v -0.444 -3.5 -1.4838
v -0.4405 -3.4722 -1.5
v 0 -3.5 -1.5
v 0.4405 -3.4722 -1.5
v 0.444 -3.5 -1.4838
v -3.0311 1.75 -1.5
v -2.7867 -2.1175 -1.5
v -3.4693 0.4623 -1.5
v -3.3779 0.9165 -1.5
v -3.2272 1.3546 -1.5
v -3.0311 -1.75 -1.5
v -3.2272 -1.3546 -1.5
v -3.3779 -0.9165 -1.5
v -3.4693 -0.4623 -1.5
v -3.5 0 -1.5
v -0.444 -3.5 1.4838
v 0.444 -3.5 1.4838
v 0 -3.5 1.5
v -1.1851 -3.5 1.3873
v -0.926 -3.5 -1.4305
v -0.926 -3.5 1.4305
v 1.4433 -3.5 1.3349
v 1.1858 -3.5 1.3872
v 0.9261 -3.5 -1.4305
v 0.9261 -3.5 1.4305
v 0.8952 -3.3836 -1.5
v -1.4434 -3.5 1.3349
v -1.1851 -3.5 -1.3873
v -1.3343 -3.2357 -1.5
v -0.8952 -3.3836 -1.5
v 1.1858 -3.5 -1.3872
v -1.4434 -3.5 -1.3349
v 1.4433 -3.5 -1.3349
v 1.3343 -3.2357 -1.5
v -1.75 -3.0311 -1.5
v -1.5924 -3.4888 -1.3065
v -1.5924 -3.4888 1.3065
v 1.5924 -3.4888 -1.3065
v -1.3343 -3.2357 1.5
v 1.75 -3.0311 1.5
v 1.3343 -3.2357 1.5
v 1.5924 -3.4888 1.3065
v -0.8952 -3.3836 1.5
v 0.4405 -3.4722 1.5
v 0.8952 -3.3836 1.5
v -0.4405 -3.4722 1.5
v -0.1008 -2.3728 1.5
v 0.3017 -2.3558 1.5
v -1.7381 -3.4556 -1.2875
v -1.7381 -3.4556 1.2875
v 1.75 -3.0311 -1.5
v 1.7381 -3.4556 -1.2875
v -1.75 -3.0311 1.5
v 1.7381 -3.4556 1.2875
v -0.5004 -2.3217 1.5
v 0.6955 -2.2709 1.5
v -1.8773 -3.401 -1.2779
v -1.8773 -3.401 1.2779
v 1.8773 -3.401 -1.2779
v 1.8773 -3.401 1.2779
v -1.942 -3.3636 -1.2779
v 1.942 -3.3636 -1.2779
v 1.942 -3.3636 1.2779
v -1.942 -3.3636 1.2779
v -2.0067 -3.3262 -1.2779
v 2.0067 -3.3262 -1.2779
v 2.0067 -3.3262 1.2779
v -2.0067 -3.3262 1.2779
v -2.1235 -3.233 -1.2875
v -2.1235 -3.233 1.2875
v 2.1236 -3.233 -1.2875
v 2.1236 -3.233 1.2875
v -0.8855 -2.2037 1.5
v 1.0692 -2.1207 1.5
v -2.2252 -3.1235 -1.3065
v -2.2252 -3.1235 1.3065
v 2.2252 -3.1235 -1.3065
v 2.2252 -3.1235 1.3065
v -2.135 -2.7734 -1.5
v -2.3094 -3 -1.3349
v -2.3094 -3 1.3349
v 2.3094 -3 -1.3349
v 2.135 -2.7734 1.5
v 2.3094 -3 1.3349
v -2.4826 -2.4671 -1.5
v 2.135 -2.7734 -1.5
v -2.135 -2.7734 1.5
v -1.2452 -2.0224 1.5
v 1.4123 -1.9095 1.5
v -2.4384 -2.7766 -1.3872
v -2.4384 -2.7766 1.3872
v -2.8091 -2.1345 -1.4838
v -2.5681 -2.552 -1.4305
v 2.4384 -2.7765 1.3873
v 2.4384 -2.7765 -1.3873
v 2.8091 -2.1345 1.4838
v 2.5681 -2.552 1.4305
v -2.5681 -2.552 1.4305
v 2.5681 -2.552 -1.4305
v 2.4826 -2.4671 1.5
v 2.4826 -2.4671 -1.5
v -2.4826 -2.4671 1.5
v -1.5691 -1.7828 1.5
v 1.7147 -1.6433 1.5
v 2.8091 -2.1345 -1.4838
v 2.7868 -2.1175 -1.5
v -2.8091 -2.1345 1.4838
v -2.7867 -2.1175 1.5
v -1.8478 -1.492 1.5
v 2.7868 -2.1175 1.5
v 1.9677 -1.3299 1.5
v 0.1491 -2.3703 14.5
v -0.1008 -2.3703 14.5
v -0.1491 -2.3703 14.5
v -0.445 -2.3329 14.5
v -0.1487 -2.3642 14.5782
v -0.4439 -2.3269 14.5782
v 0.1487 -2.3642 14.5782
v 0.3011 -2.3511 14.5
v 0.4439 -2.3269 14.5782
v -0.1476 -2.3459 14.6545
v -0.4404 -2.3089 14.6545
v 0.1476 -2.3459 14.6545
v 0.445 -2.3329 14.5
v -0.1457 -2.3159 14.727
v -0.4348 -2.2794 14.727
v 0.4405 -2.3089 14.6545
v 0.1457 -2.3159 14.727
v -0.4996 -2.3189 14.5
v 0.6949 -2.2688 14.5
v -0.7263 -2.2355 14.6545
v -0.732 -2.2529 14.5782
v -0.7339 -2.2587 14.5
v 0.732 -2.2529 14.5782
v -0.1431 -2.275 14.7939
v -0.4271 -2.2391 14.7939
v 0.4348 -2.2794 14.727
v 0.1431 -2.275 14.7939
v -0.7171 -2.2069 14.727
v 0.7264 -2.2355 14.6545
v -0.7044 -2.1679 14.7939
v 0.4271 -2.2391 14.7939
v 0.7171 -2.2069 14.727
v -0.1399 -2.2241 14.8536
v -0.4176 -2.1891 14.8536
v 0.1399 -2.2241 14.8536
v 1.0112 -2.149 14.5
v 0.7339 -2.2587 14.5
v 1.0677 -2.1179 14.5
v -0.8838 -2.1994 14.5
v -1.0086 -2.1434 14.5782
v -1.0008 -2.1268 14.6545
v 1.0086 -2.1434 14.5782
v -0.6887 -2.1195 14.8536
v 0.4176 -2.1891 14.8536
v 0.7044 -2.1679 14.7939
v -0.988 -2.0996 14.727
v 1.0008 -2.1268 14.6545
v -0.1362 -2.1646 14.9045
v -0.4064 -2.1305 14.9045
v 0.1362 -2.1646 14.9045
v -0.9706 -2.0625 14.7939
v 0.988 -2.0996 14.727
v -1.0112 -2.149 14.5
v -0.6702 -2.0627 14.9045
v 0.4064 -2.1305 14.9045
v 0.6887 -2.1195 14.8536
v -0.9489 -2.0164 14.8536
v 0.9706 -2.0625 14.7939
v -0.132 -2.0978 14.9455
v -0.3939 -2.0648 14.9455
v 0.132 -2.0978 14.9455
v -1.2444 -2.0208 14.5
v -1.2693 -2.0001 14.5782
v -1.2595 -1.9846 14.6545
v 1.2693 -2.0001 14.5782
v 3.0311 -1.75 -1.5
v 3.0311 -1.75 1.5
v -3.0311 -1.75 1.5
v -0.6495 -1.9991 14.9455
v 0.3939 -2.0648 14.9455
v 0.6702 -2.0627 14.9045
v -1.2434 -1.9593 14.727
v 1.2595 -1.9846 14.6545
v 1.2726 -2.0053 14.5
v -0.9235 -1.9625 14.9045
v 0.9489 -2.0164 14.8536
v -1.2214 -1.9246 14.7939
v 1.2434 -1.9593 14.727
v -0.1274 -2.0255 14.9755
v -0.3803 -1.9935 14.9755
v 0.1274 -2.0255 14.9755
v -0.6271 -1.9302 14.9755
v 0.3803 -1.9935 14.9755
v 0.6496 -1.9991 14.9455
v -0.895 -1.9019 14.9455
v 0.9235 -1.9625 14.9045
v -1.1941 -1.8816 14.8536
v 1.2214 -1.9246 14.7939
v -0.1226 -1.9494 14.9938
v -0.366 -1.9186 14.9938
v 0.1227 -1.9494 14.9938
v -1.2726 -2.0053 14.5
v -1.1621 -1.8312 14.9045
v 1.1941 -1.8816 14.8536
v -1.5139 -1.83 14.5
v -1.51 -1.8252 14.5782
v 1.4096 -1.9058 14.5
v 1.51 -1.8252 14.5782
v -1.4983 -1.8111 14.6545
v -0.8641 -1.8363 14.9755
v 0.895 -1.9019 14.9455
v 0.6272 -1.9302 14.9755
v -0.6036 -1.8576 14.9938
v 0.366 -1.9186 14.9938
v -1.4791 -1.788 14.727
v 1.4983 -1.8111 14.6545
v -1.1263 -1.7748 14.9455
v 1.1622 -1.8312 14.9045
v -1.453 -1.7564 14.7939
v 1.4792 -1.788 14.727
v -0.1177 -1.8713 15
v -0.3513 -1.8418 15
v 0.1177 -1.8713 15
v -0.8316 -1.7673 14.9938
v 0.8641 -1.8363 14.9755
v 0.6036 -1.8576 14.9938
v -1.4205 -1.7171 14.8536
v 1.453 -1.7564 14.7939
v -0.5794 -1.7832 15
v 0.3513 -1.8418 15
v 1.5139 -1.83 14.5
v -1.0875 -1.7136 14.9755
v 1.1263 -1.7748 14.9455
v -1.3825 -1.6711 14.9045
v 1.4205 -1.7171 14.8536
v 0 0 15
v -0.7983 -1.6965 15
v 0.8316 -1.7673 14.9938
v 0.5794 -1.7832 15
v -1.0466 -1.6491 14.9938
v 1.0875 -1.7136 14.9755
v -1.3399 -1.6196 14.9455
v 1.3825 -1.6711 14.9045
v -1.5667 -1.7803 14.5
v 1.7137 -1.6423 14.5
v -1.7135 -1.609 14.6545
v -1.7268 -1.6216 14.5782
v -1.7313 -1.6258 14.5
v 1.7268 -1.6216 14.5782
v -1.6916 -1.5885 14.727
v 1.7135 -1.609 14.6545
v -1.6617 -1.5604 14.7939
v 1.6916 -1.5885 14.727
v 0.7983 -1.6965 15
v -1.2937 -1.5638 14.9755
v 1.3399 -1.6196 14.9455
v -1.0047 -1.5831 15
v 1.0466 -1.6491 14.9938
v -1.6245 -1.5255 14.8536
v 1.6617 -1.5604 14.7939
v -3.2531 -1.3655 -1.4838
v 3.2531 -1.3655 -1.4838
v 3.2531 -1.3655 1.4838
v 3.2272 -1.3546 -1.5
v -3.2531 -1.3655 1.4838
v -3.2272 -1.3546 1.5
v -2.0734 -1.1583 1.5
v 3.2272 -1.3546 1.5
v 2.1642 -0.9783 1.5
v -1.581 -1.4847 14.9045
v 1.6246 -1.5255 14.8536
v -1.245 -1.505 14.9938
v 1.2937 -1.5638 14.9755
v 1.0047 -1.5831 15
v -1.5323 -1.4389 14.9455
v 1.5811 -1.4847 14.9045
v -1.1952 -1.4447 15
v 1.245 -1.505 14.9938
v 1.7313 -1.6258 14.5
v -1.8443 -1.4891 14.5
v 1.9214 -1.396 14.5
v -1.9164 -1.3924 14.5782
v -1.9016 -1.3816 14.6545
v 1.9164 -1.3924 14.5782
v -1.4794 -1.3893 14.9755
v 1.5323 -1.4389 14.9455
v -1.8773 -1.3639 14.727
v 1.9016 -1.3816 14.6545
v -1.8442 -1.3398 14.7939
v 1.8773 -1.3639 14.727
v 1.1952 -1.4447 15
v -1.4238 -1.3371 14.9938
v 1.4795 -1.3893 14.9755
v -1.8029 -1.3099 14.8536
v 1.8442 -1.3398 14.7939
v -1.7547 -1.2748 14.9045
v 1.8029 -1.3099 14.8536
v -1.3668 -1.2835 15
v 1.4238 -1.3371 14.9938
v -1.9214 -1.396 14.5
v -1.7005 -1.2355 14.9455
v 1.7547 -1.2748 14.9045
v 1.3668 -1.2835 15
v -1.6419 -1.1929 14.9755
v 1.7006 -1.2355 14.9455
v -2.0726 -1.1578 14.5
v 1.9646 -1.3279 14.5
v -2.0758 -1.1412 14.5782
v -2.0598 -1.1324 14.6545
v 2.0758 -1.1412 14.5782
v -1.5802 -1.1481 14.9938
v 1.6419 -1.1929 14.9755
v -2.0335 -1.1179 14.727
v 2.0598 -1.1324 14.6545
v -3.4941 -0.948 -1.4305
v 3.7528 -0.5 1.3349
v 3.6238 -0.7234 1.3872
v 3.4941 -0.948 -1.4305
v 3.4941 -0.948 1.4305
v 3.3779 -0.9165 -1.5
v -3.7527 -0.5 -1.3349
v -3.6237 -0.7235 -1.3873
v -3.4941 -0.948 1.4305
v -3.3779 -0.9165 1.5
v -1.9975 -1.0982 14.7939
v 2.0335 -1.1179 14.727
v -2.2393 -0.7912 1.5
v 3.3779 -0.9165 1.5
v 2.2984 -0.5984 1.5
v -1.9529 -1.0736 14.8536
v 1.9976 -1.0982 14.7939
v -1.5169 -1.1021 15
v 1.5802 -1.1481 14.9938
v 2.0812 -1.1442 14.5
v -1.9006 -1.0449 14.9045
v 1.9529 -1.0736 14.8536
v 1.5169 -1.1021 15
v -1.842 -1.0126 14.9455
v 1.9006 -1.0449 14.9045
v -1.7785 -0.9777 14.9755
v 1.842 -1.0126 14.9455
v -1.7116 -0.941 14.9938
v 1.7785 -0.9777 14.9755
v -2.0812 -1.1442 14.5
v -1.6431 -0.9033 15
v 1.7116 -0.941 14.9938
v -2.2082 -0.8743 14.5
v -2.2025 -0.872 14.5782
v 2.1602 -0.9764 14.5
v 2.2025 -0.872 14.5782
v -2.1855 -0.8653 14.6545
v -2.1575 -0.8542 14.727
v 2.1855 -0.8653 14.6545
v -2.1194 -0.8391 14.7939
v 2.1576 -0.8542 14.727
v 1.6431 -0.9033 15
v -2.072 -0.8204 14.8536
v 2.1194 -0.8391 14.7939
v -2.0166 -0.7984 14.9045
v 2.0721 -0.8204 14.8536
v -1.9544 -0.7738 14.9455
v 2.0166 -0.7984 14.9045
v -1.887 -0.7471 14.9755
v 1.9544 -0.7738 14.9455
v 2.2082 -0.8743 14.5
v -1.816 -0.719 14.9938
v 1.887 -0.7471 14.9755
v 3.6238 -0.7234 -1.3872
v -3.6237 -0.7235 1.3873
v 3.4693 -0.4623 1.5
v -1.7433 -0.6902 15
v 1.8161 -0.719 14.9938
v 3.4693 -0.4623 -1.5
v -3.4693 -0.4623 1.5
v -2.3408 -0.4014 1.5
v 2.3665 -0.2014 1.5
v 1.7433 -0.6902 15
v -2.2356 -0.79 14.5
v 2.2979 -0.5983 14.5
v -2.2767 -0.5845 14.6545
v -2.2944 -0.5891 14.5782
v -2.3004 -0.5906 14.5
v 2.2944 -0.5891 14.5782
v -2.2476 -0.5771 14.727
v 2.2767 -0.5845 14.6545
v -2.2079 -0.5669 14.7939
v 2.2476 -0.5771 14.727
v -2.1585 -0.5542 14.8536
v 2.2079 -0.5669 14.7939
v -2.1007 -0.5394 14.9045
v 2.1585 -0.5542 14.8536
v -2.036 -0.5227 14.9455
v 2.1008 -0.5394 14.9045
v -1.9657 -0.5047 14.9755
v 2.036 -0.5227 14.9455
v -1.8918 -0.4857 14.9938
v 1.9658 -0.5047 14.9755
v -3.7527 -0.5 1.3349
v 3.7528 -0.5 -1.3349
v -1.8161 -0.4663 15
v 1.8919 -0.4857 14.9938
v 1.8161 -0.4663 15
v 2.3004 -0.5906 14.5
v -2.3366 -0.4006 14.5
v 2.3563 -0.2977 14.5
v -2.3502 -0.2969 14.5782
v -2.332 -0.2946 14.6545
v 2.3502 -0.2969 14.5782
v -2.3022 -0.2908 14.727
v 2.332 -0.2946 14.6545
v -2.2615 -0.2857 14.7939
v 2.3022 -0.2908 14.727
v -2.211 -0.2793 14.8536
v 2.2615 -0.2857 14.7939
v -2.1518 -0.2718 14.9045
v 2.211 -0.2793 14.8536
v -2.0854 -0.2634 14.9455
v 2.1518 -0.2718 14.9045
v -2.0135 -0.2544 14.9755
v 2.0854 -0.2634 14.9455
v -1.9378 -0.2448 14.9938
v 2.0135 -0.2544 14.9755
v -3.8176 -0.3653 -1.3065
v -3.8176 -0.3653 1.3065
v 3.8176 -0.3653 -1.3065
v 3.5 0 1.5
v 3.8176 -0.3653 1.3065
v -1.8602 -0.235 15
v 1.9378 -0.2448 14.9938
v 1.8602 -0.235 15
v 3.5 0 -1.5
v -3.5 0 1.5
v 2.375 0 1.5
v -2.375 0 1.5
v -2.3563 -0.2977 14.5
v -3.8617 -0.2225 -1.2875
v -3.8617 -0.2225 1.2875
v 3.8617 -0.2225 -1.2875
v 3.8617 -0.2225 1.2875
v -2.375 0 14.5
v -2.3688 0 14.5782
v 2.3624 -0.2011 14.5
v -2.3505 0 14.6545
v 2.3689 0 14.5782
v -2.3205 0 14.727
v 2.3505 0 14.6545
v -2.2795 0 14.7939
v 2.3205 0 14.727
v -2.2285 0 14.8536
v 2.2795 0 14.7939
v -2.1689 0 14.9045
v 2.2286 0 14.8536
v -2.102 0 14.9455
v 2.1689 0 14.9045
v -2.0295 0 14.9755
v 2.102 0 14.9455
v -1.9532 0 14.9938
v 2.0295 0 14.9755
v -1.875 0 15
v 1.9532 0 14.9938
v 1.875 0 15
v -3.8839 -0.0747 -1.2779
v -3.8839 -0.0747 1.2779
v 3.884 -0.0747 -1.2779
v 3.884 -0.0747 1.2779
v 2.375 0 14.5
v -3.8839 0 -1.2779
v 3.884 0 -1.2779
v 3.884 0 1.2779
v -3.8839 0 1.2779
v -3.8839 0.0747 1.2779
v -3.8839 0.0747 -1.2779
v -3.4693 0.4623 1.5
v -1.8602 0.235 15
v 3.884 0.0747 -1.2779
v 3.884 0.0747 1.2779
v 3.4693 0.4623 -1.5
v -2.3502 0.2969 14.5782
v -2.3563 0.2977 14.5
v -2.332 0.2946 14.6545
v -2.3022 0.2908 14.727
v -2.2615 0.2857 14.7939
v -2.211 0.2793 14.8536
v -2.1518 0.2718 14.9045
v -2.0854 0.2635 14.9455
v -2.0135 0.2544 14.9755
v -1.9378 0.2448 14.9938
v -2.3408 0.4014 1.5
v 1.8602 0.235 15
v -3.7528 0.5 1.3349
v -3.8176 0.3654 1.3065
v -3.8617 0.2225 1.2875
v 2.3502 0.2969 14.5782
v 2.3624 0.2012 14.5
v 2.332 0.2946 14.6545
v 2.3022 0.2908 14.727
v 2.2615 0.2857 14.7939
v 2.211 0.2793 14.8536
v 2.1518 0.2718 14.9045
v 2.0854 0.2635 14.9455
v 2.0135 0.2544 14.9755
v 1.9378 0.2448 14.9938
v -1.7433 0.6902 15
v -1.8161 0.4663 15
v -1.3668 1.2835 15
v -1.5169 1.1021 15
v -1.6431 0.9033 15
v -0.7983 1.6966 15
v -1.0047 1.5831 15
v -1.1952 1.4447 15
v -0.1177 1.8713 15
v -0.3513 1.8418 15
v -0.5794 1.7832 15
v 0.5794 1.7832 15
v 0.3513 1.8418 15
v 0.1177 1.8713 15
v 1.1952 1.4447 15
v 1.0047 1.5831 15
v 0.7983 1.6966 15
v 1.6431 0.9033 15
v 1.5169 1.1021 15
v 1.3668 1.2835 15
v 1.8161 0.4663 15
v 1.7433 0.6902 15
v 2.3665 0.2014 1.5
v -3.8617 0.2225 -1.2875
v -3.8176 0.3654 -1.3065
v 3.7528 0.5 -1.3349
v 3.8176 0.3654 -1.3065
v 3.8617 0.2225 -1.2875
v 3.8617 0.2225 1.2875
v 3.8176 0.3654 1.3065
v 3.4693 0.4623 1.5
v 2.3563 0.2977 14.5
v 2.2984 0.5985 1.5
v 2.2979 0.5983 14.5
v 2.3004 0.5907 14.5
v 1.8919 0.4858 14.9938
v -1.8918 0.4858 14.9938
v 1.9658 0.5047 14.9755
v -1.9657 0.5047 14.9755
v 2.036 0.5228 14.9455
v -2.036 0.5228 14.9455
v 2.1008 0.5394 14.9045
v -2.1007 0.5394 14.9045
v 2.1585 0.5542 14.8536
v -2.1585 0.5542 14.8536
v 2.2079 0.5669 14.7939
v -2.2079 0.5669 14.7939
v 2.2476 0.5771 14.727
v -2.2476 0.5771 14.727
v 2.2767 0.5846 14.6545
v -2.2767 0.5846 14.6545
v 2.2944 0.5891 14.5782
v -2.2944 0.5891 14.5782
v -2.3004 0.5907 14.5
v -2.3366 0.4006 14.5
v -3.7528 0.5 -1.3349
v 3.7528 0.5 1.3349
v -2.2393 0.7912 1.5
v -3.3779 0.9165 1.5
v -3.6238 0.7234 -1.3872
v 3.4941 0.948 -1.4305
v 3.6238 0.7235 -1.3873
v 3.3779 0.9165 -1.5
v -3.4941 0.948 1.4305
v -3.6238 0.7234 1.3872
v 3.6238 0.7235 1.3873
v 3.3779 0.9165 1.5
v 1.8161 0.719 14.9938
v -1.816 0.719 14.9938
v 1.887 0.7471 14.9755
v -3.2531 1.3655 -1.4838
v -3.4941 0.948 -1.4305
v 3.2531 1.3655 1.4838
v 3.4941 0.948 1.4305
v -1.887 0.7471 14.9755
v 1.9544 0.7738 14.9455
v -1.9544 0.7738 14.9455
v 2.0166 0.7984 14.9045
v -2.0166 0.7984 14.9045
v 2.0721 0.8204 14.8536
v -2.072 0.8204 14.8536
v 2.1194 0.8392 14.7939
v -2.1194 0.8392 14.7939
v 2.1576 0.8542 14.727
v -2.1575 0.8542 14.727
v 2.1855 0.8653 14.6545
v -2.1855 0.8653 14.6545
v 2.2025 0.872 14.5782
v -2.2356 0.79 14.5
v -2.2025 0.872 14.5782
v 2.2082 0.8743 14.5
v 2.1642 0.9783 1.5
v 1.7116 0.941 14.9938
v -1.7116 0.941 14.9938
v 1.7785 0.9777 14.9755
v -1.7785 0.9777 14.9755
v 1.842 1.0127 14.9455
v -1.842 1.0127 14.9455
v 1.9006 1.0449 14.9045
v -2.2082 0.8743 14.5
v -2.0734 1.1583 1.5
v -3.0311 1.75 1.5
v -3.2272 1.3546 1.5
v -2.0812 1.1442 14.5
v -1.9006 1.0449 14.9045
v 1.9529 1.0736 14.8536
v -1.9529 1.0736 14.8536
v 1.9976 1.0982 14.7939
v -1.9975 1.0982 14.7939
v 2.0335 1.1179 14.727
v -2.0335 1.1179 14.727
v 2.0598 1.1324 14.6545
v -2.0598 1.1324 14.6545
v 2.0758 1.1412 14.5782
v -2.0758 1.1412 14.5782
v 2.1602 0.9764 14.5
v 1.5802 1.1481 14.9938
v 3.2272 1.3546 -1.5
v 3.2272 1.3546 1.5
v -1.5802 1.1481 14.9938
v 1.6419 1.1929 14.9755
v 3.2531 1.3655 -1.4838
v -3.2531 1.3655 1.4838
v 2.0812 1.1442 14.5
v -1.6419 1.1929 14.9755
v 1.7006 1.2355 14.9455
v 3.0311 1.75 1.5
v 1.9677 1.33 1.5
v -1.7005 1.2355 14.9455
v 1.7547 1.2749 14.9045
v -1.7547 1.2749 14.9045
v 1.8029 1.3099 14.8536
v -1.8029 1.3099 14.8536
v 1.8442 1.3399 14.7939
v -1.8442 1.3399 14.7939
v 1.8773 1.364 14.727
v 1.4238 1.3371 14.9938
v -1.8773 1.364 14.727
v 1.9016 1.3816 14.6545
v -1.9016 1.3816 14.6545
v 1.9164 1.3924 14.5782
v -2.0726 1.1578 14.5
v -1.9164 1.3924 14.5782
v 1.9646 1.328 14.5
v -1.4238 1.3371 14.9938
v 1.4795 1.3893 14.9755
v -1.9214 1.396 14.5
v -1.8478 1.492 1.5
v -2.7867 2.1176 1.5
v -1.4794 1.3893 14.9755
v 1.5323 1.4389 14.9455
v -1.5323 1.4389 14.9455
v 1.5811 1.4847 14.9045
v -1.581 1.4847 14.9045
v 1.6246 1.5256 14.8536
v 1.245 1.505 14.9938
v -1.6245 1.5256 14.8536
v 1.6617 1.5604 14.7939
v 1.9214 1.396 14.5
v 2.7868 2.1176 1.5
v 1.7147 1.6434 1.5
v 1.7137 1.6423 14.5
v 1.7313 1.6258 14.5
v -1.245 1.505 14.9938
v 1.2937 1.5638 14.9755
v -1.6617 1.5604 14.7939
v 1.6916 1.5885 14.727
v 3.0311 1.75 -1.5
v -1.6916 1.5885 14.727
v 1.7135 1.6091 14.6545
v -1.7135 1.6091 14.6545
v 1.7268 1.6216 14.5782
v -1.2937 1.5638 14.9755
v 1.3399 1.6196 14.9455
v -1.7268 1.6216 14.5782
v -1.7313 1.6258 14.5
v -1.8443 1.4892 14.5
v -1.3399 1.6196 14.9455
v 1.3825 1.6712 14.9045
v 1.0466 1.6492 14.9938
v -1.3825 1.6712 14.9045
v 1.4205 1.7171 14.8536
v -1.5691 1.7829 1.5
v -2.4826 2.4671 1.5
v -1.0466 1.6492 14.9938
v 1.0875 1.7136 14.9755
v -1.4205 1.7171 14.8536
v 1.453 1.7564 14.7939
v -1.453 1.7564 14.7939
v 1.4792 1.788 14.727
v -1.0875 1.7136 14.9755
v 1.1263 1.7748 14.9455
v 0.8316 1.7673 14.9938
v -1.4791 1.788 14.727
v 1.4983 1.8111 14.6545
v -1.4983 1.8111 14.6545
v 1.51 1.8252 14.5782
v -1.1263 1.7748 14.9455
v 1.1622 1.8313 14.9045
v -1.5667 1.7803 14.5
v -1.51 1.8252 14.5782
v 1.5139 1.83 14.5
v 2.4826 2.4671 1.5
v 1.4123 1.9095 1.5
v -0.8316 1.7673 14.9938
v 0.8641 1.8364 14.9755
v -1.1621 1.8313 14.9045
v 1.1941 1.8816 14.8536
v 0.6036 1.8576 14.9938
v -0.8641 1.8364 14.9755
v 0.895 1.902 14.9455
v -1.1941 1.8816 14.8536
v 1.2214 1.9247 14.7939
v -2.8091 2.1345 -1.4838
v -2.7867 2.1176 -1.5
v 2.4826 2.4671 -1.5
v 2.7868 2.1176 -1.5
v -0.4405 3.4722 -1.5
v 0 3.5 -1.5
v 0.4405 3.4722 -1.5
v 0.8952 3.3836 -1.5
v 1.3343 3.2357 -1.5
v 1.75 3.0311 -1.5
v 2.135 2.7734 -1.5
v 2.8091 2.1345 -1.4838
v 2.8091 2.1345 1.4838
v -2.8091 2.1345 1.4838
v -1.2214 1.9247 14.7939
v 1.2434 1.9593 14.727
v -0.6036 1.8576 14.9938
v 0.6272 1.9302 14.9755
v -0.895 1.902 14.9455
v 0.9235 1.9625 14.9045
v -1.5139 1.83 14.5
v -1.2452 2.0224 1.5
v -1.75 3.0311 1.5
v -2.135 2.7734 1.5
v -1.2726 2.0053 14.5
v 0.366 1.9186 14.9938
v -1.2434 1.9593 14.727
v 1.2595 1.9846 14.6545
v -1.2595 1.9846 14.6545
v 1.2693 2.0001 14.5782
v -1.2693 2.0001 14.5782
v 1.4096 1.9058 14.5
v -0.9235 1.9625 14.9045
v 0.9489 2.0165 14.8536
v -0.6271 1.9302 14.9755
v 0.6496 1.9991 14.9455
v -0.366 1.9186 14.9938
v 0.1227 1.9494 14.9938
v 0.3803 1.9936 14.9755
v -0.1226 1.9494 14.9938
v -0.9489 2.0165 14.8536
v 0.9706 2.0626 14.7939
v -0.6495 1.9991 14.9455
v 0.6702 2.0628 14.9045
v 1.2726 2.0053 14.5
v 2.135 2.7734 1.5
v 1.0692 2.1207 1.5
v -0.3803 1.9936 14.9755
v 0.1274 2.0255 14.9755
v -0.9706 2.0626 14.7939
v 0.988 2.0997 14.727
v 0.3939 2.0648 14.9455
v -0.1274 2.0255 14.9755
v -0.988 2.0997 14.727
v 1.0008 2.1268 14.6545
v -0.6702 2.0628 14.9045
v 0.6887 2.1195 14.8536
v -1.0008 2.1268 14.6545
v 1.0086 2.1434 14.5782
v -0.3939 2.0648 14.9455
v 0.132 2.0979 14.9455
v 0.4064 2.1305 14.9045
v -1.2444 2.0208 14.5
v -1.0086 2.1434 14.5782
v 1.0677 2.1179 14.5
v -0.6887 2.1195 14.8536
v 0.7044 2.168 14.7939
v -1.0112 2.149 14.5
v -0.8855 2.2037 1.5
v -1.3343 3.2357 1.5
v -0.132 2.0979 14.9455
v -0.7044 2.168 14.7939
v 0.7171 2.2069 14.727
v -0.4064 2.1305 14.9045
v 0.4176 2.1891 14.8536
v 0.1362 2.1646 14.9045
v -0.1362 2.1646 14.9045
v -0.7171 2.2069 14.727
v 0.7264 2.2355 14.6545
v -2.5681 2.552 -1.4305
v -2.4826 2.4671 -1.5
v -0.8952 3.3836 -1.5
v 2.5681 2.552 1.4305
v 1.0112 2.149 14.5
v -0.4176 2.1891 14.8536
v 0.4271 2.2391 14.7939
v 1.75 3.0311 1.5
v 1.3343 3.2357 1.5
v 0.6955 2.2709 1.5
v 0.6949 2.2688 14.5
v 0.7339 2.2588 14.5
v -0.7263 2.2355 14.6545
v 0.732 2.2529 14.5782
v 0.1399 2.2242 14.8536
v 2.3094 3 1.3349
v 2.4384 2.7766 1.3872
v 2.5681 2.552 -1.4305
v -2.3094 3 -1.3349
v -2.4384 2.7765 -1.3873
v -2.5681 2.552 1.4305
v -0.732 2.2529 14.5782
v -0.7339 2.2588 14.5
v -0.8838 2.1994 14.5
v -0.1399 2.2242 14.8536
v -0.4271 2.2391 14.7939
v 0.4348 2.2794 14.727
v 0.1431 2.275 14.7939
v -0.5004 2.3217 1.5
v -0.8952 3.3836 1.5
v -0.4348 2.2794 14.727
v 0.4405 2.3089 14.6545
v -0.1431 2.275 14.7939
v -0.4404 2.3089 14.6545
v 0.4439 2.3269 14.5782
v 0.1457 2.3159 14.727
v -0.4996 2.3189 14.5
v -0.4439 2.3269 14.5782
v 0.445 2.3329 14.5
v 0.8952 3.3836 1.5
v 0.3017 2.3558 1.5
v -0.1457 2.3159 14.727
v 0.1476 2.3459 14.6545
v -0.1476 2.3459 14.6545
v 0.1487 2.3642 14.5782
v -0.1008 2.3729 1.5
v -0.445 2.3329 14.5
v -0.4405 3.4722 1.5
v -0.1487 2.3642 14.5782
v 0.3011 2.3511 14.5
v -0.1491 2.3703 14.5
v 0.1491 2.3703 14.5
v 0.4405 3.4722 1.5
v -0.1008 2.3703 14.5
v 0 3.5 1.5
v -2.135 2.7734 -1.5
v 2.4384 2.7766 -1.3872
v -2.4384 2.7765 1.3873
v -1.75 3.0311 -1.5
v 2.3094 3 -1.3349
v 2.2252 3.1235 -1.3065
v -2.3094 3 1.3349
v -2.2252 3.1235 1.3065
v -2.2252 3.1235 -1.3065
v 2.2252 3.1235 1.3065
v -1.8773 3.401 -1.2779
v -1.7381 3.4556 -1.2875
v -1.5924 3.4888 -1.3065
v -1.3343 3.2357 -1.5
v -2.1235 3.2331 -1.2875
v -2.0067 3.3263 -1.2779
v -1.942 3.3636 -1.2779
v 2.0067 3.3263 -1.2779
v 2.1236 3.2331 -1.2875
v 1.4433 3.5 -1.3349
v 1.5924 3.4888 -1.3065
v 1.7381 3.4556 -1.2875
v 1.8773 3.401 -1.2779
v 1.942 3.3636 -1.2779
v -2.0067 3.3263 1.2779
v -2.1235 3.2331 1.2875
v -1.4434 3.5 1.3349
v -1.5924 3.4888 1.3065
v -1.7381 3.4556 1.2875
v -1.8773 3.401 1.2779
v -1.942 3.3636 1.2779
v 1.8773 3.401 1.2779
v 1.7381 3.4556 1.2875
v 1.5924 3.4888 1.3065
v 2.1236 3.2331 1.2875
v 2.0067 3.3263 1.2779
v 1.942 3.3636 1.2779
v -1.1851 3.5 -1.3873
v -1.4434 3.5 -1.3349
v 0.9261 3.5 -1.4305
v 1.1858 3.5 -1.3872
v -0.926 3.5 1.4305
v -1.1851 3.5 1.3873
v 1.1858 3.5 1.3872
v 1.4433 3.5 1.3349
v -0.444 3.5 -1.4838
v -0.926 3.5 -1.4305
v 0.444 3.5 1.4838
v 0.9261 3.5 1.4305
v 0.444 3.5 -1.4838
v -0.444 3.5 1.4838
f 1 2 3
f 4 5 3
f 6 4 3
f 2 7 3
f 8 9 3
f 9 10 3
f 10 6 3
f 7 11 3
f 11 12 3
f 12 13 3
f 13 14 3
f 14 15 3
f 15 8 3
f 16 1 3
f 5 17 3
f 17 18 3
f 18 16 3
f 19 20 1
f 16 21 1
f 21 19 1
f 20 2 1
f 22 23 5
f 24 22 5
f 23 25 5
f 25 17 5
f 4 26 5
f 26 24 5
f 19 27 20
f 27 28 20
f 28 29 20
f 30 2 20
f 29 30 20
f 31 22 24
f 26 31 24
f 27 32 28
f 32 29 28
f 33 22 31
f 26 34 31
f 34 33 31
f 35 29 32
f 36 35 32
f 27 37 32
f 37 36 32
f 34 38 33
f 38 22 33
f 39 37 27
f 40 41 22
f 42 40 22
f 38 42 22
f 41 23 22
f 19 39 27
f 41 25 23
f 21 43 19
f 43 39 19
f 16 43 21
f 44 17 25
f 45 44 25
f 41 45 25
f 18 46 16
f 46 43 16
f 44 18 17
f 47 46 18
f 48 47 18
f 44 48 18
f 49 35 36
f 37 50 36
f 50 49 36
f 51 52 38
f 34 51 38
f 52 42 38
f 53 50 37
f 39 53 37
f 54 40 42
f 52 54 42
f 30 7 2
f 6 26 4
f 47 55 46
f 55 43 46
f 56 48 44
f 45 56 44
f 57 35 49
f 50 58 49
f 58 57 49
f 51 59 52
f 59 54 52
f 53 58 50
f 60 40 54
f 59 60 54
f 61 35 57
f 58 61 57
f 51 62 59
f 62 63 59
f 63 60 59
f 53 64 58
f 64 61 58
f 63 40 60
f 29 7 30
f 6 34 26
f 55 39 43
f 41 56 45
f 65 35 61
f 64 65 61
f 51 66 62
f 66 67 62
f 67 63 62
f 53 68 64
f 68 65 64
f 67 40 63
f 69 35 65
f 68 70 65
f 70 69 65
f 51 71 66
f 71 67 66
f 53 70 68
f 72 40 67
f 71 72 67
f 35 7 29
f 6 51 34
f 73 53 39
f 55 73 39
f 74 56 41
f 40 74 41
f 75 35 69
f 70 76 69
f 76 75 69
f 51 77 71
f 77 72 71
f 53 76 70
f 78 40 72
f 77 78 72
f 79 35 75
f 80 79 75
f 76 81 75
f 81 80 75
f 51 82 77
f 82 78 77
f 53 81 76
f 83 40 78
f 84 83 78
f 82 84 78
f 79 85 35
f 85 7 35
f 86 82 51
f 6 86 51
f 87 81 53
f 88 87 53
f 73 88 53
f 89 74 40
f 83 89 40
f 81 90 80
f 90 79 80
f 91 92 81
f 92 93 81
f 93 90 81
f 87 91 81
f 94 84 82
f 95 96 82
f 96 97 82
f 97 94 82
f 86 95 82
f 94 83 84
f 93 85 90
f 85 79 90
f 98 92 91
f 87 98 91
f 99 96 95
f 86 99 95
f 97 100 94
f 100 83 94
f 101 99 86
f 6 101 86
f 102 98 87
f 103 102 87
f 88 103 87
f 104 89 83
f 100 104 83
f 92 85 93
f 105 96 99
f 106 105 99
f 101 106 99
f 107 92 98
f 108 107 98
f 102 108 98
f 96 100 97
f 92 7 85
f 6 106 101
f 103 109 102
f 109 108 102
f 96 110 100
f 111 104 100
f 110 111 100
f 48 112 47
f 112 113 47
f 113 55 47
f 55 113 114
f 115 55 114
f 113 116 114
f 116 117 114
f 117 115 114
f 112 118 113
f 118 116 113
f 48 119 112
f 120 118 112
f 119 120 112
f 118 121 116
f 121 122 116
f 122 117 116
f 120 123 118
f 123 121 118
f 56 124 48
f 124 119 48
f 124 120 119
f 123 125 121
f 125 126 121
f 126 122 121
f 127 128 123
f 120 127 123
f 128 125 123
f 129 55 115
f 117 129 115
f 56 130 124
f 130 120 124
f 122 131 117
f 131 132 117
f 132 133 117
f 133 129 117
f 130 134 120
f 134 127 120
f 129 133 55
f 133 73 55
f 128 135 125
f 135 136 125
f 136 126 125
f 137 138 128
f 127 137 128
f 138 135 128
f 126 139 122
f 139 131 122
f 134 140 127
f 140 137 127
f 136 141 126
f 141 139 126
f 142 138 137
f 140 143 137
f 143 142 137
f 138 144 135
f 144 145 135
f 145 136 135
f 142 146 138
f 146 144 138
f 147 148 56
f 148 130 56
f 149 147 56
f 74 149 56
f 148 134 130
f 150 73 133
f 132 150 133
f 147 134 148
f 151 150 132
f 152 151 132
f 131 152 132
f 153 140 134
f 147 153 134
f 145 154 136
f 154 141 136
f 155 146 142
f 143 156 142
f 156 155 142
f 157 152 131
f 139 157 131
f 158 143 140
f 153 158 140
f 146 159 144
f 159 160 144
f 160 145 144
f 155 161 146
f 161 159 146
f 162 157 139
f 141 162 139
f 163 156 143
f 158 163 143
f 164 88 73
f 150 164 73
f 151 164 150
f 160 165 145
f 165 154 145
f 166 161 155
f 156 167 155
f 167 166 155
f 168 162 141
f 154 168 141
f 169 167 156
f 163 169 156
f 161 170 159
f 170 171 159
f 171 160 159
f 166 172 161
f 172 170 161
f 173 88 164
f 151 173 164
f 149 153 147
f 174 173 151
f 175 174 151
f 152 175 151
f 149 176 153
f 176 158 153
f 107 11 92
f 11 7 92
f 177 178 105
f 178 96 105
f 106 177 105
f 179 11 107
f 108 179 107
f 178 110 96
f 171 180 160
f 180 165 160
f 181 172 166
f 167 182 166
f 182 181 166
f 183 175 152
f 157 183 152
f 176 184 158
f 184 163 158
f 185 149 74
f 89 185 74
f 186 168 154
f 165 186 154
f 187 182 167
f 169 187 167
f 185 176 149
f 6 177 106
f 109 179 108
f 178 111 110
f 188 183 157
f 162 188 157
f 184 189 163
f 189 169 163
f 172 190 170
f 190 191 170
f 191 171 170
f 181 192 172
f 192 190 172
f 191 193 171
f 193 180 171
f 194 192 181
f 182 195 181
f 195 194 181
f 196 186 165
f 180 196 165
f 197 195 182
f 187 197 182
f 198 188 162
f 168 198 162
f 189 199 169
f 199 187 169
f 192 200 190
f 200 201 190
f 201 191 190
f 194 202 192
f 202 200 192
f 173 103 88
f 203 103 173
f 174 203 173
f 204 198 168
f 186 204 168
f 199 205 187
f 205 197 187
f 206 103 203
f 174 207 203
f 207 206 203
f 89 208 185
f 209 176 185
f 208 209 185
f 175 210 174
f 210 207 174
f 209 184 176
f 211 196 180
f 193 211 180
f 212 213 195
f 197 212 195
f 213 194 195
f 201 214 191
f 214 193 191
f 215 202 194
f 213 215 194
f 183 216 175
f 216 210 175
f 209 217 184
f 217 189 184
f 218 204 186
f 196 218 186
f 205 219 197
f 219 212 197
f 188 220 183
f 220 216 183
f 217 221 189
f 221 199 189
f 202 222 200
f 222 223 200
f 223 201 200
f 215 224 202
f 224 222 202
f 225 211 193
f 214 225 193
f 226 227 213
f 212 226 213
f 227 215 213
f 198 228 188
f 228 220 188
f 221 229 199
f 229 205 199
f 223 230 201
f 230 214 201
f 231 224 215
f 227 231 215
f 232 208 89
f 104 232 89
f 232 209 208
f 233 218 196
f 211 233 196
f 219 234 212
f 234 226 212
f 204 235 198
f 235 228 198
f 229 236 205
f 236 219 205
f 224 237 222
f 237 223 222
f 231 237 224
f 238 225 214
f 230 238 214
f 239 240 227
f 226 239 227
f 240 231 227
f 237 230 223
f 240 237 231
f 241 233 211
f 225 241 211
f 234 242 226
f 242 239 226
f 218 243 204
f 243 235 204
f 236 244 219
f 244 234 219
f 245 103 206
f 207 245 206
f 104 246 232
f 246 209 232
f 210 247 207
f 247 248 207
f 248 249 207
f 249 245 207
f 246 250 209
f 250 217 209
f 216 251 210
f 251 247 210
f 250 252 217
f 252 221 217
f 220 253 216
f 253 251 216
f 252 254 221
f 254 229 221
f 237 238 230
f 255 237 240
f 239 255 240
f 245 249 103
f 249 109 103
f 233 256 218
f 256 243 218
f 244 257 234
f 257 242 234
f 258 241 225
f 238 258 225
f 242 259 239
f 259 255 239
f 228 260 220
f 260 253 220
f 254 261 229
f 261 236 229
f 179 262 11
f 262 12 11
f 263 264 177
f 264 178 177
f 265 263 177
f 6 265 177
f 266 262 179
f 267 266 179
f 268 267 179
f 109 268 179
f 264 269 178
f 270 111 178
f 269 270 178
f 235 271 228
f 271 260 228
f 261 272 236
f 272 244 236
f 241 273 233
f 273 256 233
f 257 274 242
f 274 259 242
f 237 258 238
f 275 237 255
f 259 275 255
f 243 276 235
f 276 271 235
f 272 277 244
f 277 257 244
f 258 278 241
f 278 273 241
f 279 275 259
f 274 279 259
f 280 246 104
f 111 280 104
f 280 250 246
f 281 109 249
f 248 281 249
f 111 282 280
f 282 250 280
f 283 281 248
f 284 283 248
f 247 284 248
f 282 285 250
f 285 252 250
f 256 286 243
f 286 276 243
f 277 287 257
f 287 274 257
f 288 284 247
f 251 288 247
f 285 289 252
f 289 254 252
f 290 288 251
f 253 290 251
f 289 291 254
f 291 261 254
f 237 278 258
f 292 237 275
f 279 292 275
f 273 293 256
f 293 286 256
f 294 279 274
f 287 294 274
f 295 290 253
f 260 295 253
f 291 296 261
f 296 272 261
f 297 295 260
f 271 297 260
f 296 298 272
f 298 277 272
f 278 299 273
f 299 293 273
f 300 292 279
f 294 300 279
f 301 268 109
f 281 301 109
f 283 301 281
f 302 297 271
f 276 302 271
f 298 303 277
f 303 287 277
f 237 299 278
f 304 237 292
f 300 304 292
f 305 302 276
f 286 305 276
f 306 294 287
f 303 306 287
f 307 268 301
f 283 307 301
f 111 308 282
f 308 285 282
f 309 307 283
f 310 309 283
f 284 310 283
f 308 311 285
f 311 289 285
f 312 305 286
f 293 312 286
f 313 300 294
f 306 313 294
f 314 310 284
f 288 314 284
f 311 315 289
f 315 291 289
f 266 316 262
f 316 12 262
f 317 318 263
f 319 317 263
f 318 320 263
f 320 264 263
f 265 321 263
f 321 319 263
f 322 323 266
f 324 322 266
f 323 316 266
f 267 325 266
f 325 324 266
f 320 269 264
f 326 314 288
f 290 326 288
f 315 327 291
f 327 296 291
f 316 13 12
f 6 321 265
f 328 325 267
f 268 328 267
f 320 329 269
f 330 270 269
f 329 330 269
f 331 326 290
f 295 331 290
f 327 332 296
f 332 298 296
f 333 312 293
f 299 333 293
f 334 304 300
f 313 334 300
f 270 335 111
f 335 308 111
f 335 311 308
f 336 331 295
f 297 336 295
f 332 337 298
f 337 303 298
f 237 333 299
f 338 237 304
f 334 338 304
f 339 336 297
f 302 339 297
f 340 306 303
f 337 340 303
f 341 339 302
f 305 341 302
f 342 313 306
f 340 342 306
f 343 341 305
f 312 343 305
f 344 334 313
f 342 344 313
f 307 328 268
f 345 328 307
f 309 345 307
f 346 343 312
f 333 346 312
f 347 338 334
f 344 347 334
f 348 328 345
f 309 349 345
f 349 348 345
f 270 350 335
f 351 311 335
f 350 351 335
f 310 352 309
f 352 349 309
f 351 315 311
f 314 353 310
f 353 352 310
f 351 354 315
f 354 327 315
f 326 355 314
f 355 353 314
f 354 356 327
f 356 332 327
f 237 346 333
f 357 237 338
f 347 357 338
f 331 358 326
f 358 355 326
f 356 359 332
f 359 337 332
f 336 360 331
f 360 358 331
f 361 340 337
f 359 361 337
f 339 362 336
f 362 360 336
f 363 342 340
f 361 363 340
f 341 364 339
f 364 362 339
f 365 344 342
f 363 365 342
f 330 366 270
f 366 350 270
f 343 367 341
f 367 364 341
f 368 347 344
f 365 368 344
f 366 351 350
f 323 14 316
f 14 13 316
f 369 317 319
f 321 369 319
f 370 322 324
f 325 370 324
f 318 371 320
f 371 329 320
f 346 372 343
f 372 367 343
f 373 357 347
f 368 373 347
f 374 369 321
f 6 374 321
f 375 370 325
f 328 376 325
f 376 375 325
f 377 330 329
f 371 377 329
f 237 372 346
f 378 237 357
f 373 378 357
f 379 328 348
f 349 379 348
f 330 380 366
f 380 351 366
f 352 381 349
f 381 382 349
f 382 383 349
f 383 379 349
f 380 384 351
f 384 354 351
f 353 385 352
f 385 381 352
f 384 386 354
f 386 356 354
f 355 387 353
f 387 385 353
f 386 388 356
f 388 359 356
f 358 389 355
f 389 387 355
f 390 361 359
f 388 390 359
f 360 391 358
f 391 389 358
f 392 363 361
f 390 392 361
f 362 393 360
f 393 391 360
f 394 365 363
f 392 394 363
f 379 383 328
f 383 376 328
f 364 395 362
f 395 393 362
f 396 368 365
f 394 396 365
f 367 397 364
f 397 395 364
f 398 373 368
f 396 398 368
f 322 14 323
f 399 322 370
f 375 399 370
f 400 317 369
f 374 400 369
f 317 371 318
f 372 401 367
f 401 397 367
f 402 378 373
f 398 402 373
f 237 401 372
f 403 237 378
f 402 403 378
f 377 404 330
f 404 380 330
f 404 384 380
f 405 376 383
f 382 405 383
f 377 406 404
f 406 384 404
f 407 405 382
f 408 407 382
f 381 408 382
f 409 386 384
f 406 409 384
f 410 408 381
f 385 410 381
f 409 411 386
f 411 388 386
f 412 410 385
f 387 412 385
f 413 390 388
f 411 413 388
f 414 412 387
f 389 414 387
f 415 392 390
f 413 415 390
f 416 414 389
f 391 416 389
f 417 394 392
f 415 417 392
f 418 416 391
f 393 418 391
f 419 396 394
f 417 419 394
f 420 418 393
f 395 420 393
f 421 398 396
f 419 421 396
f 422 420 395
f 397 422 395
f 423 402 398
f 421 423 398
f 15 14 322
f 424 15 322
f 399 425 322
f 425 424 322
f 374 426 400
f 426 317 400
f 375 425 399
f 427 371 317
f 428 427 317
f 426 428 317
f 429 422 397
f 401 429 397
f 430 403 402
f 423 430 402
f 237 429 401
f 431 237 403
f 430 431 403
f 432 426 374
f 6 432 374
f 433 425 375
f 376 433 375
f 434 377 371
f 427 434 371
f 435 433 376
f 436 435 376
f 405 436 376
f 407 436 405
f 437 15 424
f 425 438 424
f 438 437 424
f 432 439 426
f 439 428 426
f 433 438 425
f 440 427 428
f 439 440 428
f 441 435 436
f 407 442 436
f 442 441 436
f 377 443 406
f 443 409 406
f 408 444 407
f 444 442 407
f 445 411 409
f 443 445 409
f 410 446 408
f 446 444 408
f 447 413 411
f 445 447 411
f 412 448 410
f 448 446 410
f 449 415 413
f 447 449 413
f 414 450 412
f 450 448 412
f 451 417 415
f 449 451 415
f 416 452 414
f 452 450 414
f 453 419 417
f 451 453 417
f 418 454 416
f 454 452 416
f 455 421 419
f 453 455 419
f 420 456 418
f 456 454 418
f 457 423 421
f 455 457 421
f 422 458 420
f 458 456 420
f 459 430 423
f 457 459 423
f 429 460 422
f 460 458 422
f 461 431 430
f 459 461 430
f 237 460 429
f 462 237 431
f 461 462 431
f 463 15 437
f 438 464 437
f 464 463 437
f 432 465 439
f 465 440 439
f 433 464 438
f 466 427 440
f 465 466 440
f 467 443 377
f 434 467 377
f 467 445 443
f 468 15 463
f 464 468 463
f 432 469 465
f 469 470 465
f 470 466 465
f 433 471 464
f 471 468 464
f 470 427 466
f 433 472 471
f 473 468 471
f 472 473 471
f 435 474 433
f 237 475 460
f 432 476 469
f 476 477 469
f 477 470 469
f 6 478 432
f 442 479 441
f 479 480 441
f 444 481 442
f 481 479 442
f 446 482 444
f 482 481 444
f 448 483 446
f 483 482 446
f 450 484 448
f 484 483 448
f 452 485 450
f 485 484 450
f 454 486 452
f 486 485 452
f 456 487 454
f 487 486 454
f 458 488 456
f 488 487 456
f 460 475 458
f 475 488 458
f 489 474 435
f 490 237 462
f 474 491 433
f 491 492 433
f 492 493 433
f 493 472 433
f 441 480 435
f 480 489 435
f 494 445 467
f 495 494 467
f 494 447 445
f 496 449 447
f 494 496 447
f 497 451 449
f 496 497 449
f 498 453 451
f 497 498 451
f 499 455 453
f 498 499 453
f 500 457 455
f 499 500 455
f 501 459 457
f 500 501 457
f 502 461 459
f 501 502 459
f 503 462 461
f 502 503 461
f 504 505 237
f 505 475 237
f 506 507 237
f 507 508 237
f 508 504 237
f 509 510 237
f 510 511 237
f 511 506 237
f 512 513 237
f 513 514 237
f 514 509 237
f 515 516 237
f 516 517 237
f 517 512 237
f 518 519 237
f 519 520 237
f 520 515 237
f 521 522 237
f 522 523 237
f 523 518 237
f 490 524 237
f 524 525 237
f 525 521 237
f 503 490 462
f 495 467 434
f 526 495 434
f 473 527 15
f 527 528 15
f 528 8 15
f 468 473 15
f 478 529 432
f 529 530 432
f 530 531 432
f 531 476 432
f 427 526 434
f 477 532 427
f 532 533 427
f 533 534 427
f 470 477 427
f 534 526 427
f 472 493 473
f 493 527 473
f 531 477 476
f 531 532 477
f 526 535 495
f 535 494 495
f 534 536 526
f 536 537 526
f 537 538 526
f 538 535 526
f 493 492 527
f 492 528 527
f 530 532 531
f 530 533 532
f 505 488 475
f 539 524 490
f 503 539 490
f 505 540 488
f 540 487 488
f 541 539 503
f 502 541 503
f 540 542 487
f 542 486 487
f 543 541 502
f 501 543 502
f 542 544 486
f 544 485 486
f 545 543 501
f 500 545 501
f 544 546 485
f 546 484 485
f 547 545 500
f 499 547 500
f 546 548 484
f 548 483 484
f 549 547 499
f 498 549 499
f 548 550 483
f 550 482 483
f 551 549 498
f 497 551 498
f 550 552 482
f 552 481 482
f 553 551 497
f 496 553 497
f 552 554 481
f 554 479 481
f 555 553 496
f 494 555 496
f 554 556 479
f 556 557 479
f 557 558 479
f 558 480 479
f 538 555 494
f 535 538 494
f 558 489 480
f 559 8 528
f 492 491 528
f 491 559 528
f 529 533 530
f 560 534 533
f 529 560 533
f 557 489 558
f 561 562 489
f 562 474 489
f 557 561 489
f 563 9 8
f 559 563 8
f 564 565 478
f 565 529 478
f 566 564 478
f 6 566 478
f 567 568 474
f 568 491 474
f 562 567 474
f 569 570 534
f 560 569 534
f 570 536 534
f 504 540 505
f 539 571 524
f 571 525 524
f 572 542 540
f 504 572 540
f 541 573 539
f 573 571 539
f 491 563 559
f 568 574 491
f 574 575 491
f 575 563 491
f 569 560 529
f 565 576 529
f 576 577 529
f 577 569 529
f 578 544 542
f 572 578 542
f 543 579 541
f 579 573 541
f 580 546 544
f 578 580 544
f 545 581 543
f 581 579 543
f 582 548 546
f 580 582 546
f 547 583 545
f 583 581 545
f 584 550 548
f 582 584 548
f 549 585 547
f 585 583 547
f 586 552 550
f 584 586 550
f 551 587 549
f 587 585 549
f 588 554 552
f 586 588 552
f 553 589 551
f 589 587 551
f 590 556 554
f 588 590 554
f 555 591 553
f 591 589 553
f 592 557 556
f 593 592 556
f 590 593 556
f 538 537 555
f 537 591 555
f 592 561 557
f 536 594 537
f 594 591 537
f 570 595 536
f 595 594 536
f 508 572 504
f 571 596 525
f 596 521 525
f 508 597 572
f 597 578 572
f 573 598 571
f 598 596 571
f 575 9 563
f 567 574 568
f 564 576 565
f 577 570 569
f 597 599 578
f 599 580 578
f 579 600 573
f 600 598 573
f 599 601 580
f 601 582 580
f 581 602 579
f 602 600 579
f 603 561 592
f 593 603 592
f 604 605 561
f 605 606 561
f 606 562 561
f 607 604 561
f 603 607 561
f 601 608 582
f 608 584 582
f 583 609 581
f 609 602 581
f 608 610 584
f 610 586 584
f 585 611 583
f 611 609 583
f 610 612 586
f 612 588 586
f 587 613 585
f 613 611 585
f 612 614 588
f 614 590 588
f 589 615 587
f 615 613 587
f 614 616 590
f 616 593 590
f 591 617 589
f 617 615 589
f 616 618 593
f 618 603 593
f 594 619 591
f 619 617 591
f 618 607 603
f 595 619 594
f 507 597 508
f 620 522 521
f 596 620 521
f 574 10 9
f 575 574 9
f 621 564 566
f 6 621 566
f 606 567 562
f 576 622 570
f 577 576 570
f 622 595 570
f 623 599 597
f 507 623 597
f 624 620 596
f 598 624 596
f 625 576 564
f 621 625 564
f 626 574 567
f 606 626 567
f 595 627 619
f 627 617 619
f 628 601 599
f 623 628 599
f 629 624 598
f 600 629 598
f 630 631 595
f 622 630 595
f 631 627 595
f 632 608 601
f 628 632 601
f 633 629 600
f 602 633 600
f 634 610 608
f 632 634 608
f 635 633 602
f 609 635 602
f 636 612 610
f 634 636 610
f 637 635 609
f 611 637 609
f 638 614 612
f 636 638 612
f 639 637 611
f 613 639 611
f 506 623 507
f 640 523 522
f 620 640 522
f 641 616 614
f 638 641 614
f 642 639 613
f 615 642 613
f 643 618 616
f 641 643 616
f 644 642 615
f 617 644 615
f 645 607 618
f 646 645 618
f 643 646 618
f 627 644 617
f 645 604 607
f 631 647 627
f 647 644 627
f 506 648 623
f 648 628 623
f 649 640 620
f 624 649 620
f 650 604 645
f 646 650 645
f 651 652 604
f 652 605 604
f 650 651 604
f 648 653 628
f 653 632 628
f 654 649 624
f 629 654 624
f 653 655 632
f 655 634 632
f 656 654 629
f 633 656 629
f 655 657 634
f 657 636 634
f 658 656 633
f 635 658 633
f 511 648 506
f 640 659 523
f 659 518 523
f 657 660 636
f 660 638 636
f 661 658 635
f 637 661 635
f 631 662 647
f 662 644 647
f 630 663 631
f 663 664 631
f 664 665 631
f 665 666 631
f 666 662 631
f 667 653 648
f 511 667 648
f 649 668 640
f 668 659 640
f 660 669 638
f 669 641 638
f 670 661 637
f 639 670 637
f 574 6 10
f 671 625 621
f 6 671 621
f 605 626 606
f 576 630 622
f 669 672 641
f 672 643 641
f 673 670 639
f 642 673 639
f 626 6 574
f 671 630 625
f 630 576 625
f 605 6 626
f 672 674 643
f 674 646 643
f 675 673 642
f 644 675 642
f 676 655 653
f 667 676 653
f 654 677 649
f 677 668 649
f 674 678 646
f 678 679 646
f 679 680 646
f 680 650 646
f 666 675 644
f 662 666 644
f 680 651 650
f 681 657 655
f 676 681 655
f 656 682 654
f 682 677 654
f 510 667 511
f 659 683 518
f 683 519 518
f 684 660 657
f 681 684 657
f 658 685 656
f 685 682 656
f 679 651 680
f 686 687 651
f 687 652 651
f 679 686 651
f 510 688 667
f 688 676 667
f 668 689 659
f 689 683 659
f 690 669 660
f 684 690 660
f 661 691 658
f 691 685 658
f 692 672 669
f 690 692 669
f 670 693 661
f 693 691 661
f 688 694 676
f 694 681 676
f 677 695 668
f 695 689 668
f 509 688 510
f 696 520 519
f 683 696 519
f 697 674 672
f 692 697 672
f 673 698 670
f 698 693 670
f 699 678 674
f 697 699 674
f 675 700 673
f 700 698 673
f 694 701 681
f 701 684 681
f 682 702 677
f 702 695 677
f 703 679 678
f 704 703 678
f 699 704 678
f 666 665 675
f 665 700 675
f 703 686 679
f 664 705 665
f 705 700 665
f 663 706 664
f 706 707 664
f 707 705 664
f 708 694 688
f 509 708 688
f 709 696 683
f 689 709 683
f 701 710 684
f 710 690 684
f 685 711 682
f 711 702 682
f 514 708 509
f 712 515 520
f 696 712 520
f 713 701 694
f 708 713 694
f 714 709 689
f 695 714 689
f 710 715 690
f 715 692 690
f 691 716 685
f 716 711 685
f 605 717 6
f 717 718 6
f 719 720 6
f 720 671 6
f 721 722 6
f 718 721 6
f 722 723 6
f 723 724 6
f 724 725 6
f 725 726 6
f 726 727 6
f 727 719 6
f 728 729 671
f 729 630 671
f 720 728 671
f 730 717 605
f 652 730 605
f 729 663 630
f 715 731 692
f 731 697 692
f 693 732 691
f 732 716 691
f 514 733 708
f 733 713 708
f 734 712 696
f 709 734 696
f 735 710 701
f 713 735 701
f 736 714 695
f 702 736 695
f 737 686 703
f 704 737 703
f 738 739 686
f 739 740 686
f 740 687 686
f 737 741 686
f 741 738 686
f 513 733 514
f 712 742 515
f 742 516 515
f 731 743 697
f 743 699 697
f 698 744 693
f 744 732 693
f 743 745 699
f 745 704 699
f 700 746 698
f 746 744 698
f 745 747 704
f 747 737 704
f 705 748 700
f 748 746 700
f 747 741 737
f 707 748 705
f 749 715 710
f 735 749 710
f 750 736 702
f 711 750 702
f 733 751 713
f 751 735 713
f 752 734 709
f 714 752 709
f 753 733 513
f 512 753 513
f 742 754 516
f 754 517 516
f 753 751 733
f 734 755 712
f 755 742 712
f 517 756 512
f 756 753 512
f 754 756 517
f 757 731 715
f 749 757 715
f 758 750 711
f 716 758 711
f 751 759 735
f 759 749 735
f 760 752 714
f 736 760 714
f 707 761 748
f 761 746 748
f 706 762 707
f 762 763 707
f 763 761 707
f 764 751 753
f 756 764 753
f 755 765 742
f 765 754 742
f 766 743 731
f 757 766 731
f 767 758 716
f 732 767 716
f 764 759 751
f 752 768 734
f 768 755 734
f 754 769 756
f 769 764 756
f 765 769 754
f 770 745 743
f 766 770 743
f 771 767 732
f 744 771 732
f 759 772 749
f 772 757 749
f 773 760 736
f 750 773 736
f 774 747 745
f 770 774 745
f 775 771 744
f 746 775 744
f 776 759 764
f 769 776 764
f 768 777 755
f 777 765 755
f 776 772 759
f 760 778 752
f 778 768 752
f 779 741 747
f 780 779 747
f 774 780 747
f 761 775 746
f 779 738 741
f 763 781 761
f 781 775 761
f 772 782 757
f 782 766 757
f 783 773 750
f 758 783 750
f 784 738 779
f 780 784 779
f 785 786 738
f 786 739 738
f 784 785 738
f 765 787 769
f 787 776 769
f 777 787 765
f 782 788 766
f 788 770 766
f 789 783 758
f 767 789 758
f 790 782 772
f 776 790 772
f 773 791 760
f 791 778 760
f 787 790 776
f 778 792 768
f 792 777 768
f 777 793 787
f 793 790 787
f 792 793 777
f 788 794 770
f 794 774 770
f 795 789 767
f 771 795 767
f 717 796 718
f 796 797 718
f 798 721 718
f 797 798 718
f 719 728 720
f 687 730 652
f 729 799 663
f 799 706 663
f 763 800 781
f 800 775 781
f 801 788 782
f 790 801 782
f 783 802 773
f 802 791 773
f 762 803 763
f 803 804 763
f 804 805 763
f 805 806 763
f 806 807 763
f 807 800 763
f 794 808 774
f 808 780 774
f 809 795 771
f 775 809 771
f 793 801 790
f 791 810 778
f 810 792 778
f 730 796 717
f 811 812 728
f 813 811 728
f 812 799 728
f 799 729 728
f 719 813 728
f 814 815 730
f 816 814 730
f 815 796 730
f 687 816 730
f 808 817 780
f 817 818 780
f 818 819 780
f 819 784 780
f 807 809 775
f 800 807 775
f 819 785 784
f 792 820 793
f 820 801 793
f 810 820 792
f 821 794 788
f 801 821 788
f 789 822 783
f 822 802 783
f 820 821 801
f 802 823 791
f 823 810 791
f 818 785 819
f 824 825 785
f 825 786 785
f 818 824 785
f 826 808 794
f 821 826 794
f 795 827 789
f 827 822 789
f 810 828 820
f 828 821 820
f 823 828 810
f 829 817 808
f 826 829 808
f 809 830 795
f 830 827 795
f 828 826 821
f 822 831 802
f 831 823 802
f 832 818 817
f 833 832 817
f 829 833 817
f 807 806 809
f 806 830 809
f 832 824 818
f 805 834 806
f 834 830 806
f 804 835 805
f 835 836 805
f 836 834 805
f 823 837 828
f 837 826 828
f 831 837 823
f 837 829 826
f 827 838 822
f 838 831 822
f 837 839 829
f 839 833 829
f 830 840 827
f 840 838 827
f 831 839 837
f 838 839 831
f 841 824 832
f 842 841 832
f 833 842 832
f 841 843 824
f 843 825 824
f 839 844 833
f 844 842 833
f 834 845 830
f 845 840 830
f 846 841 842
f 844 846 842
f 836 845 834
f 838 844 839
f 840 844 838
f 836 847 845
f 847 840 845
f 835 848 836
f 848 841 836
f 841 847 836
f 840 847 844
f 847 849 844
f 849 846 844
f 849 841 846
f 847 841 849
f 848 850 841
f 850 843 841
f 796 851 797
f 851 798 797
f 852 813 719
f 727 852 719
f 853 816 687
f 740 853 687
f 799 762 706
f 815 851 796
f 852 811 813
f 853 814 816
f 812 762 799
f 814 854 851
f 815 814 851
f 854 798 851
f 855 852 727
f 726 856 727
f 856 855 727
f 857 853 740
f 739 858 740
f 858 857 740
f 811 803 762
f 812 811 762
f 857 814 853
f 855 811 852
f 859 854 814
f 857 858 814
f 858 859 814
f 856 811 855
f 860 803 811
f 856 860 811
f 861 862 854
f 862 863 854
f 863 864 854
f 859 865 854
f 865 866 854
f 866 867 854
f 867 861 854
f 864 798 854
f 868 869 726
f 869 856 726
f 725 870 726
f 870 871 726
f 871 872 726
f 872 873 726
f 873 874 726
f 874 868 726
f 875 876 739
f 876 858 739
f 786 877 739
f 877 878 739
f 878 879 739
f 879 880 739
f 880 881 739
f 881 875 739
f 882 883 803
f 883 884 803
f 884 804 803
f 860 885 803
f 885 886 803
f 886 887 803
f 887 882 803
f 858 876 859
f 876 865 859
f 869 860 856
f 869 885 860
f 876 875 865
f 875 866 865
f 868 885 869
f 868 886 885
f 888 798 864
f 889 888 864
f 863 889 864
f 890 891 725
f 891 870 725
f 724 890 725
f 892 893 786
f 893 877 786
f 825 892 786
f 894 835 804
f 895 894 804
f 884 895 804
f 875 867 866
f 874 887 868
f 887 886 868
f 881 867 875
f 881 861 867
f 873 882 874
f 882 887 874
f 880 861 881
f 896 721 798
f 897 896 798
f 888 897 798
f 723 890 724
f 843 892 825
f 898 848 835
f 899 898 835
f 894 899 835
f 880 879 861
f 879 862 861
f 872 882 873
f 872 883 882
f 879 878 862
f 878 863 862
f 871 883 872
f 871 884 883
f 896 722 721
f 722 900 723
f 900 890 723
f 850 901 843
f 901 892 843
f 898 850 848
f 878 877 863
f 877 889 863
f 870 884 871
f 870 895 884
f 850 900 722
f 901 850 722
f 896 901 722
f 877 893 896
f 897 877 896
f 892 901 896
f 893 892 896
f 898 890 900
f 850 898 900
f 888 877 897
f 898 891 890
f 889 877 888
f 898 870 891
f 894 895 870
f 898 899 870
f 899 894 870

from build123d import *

# Parameters (mm, degrees)
BOSS_EXTRUDE2_DEPTH     = 1.5
SKETCH5_OUTSIDE_W       = 64.264
SKETCH5_OUTSIDE_H       = 63.182
SKETCH5_OUTSIDE_R       = 3.5
CUT_EXTRUDE1_DEPTH      = 15
CUT_EXTRUDE1_DRAFT      = -60
MIRROR1_COPY_1_SKETCH_W = 64.264
MIRROR1_COPY_1_SKETCH_H = 63.182
MIRROR1_COPY_1_SKETCH_R = 3.5
MIRROR1_COPY_1_DEPTH    = 15
MIRROR1_COPY_1_DRAFT    = -60
SKETCH4_3_R             = 2.375
BOSS_EXTRUDE3_DEPTH     = 15
FILLET1_R               = 1
FILLET2_R               = 0.5


with BuildPart() as part:
    # Sketch4 → Boss-Extrude2 (new, symmetric)
    with BuildSketch(Plane.XY):
        Polygon((2.020725942, 3.5), (-2.020725942, 3.5), (-4.041451884, 0), (-2.020725942, -3.5), (2.020725942, -3.5), (4.041451884, 0), align=None)
    extrude(amount=BOSS_EXTRUDE2_DEPTH, both=True)


with BuildPart() as cut_extrude1_tool:
    # Sketch5 outside → Cut-Extrude1 (with draft: the straight prism first)
    with BuildSketch(Plane.XY.offset(1.5)):
        Rectangle(SKETCH5_OUTSIDE_W, SKETCH5_OUTSIDE_H)
        Circle(SKETCH5_OUTSIDE_R, mode=Mode.SUBTRACT)
    extrude(amount=-CUT_EXTRUDE1_DEPTH)
    # Cut-Extrude1: the draft: its side faces are tilted about the plane it starts from
    cut_extrude1_sides = [cut_extrude1_tool.faces().sort_by_distance(p)[0] for p in [
        (0, -31.591, -6),
        (32.132, 0, -6),
        (0, 31.591, -6),
        (-32.132, 0, -6),
        (-3.5, 0, -6),
    ]]
    draft(cut_extrude1_sides, Plane.XY.offset(1.5), CUT_EXTRUDE1_DRAFT)


with BuildPart() as part_1:
    add(part.part)

    # Cut-Extrude1: cut by cut_extrude1_tool
    add(cut_extrude1_tool.part, mode=Mode.SUBTRACT)


with BuildPart() as mirror1_copy_1_tool:
    # Mirror1 copy 1 sketch → Mirror1 copy 1 (with draft: the straight prism first)
    with BuildSketch(Plane(origin=(0, 0, -1.5), x_dir=(1, 0, 0), z_dir=(0, 0, -1))):
        Rectangle(MIRROR1_COPY_1_SKETCH_W, MIRROR1_COPY_1_SKETCH_H)
        Circle(MIRROR1_COPY_1_SKETCH_R, mode=Mode.SUBTRACT)
    extrude(amount=-MIRROR1_COPY_1_DEPTH)
    # Mirror1 copy 1: the draft: its side faces are tilted about the plane it starts from
    mirror1_copy_1_sides = [mirror1_copy_1_tool.faces().sort_by_distance(p)[0] for p in [
        (0, -31.591, 6),
        (32.132, 0, 6),
        (0, 31.591, 6),
        (-32.132, 0, 6),
        (-3.5, 0, 6),
    ]]
    draft(mirror1_copy_1_sides, Plane(origin=(0, 0, -1.5), x_dir=(1, 0, 0), z_dir=(0, 0, -1)), MIRROR1_COPY_1_DRAFT)


with BuildPart() as part_2:
    add(part_1.part)

    # Mirror1 copy 1: cut by mirror1_copy_1_tool
    add(mirror1_copy_1_tool.part, mode=Mode.SUBTRACT)

    # Sketch4<3> → Boss-Extrude3 (add)
    with BuildSketch(Plane.XY):
        Circle(SKETCH4_3_R)
    extrude(amount=BOSS_EXTRUDE3_DEPTH)

    # Fillet1
    fillet1_edges = [part_2.edges().sort_by_distance(p)[0] for p in [
        (4.041451884, 0, 0),
        (2.020725942, -3.5, 0),
        (-2.020725942, -3.5, 0),
        (-4.041451884, 0, 0),
        (-2.020725942, 3.5, 0),
        (2.020725942, 3.5, 0),
    ]]
    fillet(fillet1_edges, radius=FILLET1_R)

    # Fillet2
    fillet2_edges = [part_2.edges().sort_by_distance(p)[0] for p in [
        (-2.375, 0, 15),
    ]]
    fillet(fillet2_edges, radius=FILLET2_R)


solid = part_2.part
